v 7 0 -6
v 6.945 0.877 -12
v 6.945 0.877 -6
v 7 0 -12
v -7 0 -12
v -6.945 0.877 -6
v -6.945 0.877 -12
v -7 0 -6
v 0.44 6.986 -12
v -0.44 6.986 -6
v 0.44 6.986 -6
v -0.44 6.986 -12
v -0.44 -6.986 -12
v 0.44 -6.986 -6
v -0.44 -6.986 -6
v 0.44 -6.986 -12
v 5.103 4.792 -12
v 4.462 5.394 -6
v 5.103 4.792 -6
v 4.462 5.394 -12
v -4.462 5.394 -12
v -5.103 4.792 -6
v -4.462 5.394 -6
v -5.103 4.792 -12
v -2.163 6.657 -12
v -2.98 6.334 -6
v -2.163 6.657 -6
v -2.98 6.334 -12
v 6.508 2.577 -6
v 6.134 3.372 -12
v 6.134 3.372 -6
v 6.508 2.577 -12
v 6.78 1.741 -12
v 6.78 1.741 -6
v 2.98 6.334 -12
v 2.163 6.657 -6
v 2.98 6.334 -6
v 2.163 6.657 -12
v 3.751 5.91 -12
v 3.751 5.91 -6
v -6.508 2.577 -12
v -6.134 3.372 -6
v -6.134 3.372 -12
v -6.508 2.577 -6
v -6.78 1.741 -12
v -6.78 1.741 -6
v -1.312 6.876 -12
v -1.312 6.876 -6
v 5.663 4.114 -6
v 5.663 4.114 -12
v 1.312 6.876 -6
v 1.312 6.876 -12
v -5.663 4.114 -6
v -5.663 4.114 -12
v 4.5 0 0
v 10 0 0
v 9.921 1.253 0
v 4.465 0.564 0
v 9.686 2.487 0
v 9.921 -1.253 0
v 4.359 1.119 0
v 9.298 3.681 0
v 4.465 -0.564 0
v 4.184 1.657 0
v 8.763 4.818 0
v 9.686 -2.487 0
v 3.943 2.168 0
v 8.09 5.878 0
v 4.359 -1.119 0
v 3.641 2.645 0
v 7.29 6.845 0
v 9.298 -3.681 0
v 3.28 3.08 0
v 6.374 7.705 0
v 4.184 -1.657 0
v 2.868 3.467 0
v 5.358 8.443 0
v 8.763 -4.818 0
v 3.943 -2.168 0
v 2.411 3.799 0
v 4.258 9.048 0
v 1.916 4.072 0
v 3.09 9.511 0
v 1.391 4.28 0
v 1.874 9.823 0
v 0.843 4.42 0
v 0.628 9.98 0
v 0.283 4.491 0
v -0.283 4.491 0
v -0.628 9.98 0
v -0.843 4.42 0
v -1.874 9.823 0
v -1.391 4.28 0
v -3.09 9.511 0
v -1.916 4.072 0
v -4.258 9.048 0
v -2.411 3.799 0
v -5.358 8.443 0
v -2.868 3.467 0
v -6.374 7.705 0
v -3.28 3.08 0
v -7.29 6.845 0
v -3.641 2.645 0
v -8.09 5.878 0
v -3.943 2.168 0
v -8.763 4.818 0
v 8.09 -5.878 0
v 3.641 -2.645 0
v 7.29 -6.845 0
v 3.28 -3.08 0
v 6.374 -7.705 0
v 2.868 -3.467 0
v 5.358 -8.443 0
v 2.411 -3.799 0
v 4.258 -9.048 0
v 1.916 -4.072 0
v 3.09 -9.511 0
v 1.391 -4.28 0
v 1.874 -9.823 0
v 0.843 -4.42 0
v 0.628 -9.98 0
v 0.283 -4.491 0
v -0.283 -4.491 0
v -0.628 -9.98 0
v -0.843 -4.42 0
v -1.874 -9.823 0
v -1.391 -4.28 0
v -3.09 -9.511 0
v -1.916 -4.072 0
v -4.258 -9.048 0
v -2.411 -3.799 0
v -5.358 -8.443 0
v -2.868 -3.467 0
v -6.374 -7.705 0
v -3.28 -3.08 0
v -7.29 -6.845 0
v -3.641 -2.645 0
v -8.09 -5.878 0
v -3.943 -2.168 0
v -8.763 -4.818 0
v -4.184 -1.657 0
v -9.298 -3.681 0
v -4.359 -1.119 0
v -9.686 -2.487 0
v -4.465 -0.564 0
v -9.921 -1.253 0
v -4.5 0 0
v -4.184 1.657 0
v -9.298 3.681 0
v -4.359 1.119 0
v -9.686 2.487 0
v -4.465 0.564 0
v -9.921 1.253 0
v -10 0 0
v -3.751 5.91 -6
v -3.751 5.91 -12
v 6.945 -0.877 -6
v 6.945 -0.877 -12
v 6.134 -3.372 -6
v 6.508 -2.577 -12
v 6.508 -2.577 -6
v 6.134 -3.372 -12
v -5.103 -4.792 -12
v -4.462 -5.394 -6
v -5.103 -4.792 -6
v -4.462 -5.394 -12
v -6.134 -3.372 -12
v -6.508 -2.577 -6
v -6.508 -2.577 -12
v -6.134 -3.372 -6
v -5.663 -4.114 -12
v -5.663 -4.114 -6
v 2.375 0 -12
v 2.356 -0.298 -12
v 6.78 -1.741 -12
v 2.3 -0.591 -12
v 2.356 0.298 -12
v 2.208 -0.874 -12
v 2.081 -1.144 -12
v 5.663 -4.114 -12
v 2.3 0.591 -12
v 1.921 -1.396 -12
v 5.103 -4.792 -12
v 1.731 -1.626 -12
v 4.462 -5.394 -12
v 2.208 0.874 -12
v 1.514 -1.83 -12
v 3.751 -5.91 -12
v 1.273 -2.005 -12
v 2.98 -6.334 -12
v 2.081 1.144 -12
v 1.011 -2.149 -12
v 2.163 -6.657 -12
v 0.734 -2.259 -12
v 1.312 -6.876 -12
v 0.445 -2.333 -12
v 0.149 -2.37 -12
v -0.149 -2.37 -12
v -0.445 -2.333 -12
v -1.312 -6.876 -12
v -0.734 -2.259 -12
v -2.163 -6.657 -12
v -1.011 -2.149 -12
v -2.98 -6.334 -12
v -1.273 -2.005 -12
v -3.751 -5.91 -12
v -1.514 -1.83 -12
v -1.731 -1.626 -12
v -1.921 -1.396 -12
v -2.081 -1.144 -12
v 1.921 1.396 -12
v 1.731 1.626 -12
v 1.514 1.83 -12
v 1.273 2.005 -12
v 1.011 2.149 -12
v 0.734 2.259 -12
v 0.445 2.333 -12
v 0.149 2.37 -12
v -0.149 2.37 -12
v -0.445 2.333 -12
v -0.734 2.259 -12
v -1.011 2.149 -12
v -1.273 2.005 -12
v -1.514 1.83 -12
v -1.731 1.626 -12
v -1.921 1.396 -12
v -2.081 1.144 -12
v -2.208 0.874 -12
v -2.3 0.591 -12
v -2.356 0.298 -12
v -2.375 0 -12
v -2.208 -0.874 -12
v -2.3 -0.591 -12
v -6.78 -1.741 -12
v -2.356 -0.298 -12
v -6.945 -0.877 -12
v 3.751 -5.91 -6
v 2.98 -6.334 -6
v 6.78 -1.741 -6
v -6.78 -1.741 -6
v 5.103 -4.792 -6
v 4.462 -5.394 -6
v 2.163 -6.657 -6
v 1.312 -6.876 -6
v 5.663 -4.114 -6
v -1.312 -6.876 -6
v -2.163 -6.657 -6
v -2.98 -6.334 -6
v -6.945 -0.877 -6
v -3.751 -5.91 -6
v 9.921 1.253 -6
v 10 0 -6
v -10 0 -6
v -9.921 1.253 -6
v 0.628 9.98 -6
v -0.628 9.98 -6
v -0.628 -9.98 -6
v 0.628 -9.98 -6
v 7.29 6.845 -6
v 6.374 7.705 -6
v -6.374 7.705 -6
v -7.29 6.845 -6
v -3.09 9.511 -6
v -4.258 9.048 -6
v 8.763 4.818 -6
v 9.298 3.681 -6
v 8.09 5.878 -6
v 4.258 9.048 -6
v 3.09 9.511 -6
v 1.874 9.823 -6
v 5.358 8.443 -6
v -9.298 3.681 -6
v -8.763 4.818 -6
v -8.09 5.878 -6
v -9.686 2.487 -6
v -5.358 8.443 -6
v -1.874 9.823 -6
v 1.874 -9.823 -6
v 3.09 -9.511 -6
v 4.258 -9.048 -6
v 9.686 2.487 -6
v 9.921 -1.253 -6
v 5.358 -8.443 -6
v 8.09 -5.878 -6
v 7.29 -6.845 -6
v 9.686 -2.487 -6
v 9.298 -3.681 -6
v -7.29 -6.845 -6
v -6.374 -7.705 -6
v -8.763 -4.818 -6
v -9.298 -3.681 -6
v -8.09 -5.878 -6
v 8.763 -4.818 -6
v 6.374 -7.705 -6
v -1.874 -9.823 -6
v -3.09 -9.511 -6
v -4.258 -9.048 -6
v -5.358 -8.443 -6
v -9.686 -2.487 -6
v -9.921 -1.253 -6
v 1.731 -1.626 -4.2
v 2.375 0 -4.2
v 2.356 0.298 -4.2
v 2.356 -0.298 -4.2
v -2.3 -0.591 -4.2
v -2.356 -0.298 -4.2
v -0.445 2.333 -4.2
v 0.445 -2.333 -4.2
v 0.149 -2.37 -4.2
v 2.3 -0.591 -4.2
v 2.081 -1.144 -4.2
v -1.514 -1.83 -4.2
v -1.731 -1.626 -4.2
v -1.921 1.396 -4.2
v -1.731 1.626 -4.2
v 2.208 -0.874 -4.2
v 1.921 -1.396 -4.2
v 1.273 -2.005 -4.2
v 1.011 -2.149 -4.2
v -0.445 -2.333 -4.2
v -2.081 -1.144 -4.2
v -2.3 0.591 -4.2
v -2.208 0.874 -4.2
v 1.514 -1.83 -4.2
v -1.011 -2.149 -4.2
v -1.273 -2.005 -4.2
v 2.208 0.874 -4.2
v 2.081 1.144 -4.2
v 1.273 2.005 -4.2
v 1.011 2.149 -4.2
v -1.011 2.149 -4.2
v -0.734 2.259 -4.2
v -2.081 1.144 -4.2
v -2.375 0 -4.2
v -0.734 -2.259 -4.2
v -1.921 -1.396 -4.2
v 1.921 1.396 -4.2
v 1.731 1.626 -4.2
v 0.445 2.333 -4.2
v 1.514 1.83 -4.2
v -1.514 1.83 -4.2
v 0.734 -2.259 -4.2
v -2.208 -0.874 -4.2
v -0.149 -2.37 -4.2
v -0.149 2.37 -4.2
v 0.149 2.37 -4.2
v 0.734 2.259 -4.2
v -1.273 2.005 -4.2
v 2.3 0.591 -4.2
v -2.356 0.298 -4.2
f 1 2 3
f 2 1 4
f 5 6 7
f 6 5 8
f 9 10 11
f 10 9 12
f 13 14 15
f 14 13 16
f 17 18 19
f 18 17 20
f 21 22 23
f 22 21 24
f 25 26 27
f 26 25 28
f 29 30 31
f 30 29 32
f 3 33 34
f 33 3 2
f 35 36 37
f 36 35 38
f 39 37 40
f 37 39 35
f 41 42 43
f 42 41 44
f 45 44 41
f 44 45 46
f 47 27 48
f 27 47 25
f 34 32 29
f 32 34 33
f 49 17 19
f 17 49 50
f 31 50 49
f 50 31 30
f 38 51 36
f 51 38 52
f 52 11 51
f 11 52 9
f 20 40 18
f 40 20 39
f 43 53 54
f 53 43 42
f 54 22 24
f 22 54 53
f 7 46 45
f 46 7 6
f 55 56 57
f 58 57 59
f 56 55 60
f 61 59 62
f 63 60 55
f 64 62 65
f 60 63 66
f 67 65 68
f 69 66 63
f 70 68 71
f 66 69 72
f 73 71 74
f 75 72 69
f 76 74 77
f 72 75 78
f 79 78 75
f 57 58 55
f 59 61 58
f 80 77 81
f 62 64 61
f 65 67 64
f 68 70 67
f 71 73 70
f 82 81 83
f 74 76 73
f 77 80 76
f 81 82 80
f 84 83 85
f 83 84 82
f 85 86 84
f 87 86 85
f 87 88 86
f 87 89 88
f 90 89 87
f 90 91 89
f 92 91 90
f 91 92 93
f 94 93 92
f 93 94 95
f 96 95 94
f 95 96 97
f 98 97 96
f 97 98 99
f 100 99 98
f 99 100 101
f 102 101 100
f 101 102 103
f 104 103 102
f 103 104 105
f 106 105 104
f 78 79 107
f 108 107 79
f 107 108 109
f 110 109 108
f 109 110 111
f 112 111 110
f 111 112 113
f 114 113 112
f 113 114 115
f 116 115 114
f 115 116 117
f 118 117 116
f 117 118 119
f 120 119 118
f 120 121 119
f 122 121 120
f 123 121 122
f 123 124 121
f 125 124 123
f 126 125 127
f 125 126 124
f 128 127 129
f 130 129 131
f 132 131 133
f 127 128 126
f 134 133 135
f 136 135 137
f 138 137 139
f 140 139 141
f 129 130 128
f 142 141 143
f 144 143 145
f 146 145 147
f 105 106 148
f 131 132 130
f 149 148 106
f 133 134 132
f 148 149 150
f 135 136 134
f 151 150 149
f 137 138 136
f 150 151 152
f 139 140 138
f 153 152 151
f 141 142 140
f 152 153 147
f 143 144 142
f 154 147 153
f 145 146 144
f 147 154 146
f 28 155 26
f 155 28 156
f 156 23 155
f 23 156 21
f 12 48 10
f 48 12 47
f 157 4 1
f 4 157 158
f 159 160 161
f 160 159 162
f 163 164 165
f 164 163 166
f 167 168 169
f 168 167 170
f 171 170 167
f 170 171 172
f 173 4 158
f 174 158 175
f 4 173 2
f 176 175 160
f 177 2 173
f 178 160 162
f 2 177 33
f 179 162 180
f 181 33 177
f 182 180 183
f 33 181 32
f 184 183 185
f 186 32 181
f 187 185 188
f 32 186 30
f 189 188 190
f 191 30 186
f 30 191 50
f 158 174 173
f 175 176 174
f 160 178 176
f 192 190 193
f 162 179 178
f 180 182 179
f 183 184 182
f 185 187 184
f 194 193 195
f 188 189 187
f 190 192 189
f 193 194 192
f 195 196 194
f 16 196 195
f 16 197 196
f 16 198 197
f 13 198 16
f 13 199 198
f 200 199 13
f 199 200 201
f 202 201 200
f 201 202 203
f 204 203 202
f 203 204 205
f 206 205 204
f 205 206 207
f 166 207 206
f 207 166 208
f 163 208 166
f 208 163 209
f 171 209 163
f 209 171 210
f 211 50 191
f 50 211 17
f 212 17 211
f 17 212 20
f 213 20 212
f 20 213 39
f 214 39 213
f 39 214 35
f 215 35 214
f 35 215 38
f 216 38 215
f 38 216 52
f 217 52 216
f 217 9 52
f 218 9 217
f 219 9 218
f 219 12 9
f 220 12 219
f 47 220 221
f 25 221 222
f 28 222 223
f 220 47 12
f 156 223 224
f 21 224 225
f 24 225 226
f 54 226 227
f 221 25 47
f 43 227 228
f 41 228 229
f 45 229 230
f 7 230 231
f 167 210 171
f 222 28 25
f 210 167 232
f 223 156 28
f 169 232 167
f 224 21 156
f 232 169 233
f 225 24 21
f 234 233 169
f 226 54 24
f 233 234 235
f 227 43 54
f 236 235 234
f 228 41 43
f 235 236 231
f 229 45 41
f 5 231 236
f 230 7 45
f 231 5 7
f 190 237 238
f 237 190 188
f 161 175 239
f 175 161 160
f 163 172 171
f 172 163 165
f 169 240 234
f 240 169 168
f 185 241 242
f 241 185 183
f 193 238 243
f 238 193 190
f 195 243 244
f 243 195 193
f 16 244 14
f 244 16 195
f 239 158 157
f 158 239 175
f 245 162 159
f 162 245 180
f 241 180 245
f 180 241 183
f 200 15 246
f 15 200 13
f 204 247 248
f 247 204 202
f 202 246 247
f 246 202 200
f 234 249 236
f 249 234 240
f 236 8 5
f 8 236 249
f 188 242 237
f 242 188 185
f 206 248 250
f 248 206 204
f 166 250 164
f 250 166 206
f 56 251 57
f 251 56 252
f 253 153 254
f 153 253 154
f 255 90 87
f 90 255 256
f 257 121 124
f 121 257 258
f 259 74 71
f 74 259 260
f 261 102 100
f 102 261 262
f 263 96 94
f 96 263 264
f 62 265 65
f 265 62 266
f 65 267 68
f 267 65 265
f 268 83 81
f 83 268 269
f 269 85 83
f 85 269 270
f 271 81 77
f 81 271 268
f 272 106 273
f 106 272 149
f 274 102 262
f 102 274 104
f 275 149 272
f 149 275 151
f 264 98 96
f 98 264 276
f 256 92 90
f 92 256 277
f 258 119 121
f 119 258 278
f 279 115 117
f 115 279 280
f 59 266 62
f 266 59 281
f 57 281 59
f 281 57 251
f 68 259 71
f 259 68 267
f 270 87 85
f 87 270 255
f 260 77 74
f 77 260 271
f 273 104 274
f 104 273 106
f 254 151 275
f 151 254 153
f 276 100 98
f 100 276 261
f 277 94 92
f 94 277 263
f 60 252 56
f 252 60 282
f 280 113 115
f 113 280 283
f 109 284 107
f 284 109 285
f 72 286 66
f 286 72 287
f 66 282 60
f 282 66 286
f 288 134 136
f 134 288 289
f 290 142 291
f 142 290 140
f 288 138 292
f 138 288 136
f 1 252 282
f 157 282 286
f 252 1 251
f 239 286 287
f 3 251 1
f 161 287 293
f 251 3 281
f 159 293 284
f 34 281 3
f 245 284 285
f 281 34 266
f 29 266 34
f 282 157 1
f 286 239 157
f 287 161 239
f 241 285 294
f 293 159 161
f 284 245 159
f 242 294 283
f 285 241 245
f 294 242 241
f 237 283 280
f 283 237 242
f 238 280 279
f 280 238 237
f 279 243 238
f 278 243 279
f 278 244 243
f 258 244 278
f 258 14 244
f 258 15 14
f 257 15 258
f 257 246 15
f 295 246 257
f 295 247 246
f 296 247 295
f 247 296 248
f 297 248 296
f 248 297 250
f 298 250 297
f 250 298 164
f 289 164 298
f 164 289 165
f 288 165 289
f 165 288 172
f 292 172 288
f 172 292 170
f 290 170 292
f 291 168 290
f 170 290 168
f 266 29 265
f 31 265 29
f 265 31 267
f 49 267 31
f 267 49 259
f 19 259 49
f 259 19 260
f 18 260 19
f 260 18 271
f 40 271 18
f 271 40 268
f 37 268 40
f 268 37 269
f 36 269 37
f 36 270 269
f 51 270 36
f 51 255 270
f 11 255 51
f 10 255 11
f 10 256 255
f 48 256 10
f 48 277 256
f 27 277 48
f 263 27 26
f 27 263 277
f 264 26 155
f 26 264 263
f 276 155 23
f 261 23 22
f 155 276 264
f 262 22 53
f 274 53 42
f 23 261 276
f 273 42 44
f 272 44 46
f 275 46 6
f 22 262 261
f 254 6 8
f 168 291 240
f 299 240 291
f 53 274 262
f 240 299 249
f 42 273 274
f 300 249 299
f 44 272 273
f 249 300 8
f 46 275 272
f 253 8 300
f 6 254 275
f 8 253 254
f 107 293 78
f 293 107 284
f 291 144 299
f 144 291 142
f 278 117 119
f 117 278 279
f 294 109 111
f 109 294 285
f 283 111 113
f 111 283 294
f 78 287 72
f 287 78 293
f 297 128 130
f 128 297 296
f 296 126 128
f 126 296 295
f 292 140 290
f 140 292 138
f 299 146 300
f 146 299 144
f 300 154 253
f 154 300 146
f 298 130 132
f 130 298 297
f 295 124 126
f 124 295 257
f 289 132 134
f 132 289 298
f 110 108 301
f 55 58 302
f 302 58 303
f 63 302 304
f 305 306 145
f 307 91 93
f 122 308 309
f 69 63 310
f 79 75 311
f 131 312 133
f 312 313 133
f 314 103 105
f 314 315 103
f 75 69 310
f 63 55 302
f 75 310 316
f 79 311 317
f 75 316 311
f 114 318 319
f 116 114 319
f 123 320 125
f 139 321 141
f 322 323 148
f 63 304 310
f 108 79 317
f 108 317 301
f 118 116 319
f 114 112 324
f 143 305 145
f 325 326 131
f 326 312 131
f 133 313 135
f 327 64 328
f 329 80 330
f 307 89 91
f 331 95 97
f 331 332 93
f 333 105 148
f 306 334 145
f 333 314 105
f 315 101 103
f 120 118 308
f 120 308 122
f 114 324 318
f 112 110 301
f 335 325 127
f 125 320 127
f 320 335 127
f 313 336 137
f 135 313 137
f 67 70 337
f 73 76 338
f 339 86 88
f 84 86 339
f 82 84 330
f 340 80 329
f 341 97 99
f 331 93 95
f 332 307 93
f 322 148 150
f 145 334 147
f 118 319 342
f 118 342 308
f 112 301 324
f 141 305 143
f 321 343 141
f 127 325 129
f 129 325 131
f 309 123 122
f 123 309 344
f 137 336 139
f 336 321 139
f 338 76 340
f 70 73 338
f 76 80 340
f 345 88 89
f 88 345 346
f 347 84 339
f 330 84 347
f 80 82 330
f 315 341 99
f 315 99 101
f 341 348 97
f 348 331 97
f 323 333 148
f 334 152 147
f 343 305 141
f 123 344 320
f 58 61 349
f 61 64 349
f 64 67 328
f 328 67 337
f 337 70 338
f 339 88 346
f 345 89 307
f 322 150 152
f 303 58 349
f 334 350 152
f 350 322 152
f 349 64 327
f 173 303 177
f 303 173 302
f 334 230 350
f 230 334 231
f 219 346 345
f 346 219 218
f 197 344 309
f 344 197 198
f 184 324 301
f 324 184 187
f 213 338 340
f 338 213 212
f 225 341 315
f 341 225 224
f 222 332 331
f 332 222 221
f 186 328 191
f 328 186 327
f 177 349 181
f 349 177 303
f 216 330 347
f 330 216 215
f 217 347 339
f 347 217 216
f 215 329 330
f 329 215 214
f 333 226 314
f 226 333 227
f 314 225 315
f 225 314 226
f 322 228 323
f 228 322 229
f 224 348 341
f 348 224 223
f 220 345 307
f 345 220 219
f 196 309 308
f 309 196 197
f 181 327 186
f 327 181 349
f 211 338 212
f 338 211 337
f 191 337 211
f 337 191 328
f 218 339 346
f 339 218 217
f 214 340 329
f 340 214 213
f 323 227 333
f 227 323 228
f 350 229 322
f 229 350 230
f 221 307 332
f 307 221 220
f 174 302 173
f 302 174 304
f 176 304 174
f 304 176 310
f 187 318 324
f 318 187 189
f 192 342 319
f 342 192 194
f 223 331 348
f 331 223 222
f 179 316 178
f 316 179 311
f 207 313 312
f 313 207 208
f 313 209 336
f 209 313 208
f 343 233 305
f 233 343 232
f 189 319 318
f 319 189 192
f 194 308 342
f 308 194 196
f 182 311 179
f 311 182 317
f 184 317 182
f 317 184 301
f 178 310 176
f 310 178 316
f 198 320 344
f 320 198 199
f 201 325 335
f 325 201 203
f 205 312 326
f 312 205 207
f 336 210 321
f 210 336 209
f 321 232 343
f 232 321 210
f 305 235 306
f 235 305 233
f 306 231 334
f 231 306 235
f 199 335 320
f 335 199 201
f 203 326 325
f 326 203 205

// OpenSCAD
$fn = 50;


difference() {
	union() {
		translate(v = [0, 0, -12.0000000000]) {
			cylinder(h = 12, r = 7.0000000000);
		}
		translate(v = [0, 0, -6.0000000000]) {
			cylinder(h = 6, r = 10.0000000000);
		}
	}
	union() {
		translate(v = [0, 0, 0]) {
			rotate(a = [0, 0, 0]) {
				difference() {
					union() {
						#translate(v = [0, 0, -12.0000000000]) {
							cylinder(h = 12, r = 2.2500000000);
						}
						#translate(v = [0, 0, -4.2000000000]) {
							cylinder(h = 4.2000000000, r1 = 2.3750000000, r2 = 4.5000000000);
						}
						#translate(v = [0, 0, -12.0000000000]) {
							cylinder(h = 12, r = 2.3750000000);
						}
						#translate(v = [0, 0, -12.0000000000]) {
							cylinder(h = 12, r = 2.2500000000);
						}
					}
					union();
				}
			}
		}
	}
}
